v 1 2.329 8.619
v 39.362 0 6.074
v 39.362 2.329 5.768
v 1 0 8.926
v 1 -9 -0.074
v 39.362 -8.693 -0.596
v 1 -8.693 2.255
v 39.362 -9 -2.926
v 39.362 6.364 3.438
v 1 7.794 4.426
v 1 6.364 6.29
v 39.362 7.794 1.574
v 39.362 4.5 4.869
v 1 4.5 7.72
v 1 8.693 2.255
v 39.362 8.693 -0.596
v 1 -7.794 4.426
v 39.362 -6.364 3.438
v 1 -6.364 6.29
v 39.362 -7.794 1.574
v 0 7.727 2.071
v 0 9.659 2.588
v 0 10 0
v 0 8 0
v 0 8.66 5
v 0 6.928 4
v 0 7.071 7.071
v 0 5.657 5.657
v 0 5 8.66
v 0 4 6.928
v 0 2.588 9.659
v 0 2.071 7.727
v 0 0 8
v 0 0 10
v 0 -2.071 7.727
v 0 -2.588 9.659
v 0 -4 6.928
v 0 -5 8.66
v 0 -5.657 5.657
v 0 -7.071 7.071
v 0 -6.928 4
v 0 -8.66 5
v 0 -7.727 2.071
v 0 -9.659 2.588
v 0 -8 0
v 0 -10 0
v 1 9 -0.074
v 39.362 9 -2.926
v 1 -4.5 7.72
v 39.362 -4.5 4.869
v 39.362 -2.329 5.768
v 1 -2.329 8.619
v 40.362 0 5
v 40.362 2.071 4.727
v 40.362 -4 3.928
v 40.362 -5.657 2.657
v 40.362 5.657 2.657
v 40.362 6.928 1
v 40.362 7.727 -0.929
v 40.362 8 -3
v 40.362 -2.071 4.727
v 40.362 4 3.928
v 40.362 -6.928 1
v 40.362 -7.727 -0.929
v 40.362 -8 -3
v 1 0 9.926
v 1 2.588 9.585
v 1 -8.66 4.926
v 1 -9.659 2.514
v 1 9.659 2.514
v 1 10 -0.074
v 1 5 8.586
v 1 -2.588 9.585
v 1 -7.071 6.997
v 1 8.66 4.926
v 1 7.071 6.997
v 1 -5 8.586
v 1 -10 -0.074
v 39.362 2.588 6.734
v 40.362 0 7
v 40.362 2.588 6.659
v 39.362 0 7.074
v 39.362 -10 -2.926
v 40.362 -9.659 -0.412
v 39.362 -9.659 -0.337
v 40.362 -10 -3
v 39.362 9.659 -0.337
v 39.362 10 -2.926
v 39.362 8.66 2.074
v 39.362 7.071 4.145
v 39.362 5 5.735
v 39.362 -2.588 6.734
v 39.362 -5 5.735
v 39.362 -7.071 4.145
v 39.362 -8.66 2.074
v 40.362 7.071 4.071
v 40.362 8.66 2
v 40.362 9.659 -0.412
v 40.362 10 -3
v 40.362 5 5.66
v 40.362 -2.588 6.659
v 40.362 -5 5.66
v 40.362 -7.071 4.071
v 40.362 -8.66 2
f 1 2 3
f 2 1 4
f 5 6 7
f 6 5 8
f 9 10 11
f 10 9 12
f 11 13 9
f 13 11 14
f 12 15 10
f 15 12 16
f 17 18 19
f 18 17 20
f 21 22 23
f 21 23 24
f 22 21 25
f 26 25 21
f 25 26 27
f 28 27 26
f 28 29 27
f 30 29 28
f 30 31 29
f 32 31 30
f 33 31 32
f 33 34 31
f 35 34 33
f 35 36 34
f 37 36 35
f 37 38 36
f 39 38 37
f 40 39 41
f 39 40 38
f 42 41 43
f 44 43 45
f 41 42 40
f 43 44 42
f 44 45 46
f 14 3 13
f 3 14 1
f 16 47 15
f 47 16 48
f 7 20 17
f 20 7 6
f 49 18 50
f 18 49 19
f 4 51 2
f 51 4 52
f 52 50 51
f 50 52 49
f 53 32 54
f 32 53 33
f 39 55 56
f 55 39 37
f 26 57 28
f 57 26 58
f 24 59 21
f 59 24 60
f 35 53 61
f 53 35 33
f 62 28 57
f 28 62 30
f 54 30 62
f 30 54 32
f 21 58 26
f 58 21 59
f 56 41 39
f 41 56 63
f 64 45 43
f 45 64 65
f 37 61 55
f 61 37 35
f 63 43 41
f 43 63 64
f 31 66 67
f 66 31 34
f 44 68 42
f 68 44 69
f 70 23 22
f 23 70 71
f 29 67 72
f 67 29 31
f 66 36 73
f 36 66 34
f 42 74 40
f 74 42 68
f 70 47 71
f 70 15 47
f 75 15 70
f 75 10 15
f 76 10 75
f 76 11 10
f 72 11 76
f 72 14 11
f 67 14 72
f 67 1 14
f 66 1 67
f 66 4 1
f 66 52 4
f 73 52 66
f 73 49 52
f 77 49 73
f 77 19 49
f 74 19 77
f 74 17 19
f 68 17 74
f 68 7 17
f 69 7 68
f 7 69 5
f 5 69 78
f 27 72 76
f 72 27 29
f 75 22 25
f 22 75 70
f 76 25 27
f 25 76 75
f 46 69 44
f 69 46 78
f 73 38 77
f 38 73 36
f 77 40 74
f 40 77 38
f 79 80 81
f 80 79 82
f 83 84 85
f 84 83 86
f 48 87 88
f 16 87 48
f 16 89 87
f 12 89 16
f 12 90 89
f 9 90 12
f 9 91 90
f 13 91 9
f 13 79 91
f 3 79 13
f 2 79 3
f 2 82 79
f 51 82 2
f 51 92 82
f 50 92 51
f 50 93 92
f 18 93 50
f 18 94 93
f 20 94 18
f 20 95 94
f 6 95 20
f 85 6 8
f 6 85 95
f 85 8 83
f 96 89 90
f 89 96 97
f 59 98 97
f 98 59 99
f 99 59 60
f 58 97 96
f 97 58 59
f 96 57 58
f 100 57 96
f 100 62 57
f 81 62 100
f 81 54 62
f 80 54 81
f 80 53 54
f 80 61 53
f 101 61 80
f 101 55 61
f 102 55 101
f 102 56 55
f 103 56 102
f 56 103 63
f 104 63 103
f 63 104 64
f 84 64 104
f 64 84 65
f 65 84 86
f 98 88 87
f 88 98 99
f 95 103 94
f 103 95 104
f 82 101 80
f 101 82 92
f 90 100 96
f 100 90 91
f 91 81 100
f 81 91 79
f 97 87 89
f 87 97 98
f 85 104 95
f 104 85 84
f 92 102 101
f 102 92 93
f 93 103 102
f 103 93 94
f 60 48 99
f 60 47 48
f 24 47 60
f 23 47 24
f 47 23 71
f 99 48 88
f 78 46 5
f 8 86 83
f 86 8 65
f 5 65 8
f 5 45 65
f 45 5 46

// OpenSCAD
// file: ../build_environments.scad
// build_environments.scad: modules to build level sections
//

module pool(diameter=10.0, wall_height=2.0, step_width=3.0, connections=[])
{
    difference() {
        union() {
        difference() {
            cylinder(h=0.5,r1=diameter+step_width,r2=diameter+step_width,$fn=48);
            translate([0,0,-0.1])
                cylinder(h=0.7,r1=diameter,r2=diameter,$fn=48);
        }
        difference() {
            cylinder(h=wall_height,r1=diameter+step_width+1.0,r2=diameter+step_width+1.0,$fn=48);
            translate([0,0,-0.1])
                cylinder(h=wall_height+0.2,r1=diameter+step_width,r2=diameter+step_width,$fn=48);
        }
        }
    
        for (c = connections)
        {
            rotate([0,90,0]) {
                angle = atan2(c[1],c[0]);
                rotate([-angle,0,0]) {
                    cylinder(h=diameter+5.0,r1=c[2],r2=c[2],$fn=48);
                }
            }
        }
    }
}

module straight(length=10.0, width=2.0, dy1=0.0, dy2=0.0, dz=0.0)
{
    dims = [0, 0, 0, 0, 0, (dz/length)];
    matrix = [
        [ 1, dims[0], dims[1], 0 ],
        [ dims[2], 1, dims[4], 0 ],
        [ dims[5], dims[3], 1, 0 ],
        [ 0, 0, 0, 1 ]
    ];
    multmatrix(matrix)
    difference() {
        translate([dy1,0,0])
        union() {
            rotate([0,90,0]) {
                difference() {
                    cylinder(h=(length-dy1-dy2),r1=width+1.0,r2=width+1.0,$fn=24);
                    translate([0,0,-0.1])
                        cylinder(h=(length-dy1-dy2+0.2),r1=width,r2=width,$fn=24);
                }
                difference() {
                    cylinder(h=1.0,r1=width+2.0,r2=width+2.0,$fn=24);
                    translate([0,0,-0.1])
                        cylinder(h=1.2,r1=width,r2=width,$fn=24);
                }
                translate([0,0,(length-dy1-dy2)-1.0]) {
                    difference() {
                        cylinder(h=1.0,r1=width+2.0,r2=width+2.0,$fn=24);
                        translate([0,0,-0.1])
                            cylinder(h=1.2,r1=width,r2=width,$fn=24);
                    }
                }
            }
        }
        translate([0,0,-(2*width+4.0)/2])
            cube([3*length,3*length,2*width+4.0],center=true);
    }
}

module curve(p0=[0,0], center=[0,0], dir=1, angle=0.0, width=2.0)
{
    radius = sqrt((p0[0]-center[0])*(p0[0]-center[0]) + (p0[1]-center[1])*(p0[1]-center[1]));
    if (dir == 0) {
        difference() {
            rotate([0,0,-90])
            difference() {
                rotate_extrude(angle = angle, convexity = 10, $fn=32)
                    translate([radius, 0, 0])
                        circle(r = width+1.0,$fn=24);
                rotate([0,0,-1.0])
                    rotate_extrude(angle = angle+2.0, convexity = 10, $fn=32)
                        translate([radius, 0, 0])
                            circle(r = width,$fn=24);
            }
            translate([0,0,-(2*width+4.0)/2])
                cube([5*radius,5*radius,2*width+4.0],center=true);
        }
    }
    else {
        difference() {
            rotate([0,0,90])
            difference() {
                rotate_extrude(angle = -angle, convexity = 10, $fn=32)
                    translate([radius, 0, 0])
                        circle(r = width+1.0,$fn=24);
                rotate([0,0,1.0])
                    rotate_extrude(angle = -angle-2.0, convexity = 10, $fn=32)
                        translate([radius, 0, 0])
                            circle(r = width,$fn=24);
            }
            translate([0,0,-(2*width+4.0)/2])
                cube([5*radius,5*radius,2*width+4.0],center=true);
        }
    }

}

// test pool
//pool(diameter=12.0000, wall_height=3.0000, step_width=3.0000, connections=[[0.0000,-26.0000,2.0000], [23.6074,0.0000,2.0000]]);

// test straight, slope
//straight(length=26.0000, width=2.0000, dy1=11.8322, dy2=6.7082, dz=0.0000);
//straight(length=29.1549, width=12.0000, dy1=0.0000, dy2=0.0000, dz=-15.0000);

// test curve
//curve(p0=[23.6074, 0.0000], center=[23.6074, 5.0000], dir=0, angle=60.1011, width=2.0000);
//curve(p0=[33.6426, 12.4219], center=[37.9771, 9.9295], dir=1, angle=120.4627, width=2.0000);
// main file
use <../build_environments.scad>;
straight(length=40.3615, width=8.0000, dy1=0.0000, dy2=0.0000, dz=-3.0000);
